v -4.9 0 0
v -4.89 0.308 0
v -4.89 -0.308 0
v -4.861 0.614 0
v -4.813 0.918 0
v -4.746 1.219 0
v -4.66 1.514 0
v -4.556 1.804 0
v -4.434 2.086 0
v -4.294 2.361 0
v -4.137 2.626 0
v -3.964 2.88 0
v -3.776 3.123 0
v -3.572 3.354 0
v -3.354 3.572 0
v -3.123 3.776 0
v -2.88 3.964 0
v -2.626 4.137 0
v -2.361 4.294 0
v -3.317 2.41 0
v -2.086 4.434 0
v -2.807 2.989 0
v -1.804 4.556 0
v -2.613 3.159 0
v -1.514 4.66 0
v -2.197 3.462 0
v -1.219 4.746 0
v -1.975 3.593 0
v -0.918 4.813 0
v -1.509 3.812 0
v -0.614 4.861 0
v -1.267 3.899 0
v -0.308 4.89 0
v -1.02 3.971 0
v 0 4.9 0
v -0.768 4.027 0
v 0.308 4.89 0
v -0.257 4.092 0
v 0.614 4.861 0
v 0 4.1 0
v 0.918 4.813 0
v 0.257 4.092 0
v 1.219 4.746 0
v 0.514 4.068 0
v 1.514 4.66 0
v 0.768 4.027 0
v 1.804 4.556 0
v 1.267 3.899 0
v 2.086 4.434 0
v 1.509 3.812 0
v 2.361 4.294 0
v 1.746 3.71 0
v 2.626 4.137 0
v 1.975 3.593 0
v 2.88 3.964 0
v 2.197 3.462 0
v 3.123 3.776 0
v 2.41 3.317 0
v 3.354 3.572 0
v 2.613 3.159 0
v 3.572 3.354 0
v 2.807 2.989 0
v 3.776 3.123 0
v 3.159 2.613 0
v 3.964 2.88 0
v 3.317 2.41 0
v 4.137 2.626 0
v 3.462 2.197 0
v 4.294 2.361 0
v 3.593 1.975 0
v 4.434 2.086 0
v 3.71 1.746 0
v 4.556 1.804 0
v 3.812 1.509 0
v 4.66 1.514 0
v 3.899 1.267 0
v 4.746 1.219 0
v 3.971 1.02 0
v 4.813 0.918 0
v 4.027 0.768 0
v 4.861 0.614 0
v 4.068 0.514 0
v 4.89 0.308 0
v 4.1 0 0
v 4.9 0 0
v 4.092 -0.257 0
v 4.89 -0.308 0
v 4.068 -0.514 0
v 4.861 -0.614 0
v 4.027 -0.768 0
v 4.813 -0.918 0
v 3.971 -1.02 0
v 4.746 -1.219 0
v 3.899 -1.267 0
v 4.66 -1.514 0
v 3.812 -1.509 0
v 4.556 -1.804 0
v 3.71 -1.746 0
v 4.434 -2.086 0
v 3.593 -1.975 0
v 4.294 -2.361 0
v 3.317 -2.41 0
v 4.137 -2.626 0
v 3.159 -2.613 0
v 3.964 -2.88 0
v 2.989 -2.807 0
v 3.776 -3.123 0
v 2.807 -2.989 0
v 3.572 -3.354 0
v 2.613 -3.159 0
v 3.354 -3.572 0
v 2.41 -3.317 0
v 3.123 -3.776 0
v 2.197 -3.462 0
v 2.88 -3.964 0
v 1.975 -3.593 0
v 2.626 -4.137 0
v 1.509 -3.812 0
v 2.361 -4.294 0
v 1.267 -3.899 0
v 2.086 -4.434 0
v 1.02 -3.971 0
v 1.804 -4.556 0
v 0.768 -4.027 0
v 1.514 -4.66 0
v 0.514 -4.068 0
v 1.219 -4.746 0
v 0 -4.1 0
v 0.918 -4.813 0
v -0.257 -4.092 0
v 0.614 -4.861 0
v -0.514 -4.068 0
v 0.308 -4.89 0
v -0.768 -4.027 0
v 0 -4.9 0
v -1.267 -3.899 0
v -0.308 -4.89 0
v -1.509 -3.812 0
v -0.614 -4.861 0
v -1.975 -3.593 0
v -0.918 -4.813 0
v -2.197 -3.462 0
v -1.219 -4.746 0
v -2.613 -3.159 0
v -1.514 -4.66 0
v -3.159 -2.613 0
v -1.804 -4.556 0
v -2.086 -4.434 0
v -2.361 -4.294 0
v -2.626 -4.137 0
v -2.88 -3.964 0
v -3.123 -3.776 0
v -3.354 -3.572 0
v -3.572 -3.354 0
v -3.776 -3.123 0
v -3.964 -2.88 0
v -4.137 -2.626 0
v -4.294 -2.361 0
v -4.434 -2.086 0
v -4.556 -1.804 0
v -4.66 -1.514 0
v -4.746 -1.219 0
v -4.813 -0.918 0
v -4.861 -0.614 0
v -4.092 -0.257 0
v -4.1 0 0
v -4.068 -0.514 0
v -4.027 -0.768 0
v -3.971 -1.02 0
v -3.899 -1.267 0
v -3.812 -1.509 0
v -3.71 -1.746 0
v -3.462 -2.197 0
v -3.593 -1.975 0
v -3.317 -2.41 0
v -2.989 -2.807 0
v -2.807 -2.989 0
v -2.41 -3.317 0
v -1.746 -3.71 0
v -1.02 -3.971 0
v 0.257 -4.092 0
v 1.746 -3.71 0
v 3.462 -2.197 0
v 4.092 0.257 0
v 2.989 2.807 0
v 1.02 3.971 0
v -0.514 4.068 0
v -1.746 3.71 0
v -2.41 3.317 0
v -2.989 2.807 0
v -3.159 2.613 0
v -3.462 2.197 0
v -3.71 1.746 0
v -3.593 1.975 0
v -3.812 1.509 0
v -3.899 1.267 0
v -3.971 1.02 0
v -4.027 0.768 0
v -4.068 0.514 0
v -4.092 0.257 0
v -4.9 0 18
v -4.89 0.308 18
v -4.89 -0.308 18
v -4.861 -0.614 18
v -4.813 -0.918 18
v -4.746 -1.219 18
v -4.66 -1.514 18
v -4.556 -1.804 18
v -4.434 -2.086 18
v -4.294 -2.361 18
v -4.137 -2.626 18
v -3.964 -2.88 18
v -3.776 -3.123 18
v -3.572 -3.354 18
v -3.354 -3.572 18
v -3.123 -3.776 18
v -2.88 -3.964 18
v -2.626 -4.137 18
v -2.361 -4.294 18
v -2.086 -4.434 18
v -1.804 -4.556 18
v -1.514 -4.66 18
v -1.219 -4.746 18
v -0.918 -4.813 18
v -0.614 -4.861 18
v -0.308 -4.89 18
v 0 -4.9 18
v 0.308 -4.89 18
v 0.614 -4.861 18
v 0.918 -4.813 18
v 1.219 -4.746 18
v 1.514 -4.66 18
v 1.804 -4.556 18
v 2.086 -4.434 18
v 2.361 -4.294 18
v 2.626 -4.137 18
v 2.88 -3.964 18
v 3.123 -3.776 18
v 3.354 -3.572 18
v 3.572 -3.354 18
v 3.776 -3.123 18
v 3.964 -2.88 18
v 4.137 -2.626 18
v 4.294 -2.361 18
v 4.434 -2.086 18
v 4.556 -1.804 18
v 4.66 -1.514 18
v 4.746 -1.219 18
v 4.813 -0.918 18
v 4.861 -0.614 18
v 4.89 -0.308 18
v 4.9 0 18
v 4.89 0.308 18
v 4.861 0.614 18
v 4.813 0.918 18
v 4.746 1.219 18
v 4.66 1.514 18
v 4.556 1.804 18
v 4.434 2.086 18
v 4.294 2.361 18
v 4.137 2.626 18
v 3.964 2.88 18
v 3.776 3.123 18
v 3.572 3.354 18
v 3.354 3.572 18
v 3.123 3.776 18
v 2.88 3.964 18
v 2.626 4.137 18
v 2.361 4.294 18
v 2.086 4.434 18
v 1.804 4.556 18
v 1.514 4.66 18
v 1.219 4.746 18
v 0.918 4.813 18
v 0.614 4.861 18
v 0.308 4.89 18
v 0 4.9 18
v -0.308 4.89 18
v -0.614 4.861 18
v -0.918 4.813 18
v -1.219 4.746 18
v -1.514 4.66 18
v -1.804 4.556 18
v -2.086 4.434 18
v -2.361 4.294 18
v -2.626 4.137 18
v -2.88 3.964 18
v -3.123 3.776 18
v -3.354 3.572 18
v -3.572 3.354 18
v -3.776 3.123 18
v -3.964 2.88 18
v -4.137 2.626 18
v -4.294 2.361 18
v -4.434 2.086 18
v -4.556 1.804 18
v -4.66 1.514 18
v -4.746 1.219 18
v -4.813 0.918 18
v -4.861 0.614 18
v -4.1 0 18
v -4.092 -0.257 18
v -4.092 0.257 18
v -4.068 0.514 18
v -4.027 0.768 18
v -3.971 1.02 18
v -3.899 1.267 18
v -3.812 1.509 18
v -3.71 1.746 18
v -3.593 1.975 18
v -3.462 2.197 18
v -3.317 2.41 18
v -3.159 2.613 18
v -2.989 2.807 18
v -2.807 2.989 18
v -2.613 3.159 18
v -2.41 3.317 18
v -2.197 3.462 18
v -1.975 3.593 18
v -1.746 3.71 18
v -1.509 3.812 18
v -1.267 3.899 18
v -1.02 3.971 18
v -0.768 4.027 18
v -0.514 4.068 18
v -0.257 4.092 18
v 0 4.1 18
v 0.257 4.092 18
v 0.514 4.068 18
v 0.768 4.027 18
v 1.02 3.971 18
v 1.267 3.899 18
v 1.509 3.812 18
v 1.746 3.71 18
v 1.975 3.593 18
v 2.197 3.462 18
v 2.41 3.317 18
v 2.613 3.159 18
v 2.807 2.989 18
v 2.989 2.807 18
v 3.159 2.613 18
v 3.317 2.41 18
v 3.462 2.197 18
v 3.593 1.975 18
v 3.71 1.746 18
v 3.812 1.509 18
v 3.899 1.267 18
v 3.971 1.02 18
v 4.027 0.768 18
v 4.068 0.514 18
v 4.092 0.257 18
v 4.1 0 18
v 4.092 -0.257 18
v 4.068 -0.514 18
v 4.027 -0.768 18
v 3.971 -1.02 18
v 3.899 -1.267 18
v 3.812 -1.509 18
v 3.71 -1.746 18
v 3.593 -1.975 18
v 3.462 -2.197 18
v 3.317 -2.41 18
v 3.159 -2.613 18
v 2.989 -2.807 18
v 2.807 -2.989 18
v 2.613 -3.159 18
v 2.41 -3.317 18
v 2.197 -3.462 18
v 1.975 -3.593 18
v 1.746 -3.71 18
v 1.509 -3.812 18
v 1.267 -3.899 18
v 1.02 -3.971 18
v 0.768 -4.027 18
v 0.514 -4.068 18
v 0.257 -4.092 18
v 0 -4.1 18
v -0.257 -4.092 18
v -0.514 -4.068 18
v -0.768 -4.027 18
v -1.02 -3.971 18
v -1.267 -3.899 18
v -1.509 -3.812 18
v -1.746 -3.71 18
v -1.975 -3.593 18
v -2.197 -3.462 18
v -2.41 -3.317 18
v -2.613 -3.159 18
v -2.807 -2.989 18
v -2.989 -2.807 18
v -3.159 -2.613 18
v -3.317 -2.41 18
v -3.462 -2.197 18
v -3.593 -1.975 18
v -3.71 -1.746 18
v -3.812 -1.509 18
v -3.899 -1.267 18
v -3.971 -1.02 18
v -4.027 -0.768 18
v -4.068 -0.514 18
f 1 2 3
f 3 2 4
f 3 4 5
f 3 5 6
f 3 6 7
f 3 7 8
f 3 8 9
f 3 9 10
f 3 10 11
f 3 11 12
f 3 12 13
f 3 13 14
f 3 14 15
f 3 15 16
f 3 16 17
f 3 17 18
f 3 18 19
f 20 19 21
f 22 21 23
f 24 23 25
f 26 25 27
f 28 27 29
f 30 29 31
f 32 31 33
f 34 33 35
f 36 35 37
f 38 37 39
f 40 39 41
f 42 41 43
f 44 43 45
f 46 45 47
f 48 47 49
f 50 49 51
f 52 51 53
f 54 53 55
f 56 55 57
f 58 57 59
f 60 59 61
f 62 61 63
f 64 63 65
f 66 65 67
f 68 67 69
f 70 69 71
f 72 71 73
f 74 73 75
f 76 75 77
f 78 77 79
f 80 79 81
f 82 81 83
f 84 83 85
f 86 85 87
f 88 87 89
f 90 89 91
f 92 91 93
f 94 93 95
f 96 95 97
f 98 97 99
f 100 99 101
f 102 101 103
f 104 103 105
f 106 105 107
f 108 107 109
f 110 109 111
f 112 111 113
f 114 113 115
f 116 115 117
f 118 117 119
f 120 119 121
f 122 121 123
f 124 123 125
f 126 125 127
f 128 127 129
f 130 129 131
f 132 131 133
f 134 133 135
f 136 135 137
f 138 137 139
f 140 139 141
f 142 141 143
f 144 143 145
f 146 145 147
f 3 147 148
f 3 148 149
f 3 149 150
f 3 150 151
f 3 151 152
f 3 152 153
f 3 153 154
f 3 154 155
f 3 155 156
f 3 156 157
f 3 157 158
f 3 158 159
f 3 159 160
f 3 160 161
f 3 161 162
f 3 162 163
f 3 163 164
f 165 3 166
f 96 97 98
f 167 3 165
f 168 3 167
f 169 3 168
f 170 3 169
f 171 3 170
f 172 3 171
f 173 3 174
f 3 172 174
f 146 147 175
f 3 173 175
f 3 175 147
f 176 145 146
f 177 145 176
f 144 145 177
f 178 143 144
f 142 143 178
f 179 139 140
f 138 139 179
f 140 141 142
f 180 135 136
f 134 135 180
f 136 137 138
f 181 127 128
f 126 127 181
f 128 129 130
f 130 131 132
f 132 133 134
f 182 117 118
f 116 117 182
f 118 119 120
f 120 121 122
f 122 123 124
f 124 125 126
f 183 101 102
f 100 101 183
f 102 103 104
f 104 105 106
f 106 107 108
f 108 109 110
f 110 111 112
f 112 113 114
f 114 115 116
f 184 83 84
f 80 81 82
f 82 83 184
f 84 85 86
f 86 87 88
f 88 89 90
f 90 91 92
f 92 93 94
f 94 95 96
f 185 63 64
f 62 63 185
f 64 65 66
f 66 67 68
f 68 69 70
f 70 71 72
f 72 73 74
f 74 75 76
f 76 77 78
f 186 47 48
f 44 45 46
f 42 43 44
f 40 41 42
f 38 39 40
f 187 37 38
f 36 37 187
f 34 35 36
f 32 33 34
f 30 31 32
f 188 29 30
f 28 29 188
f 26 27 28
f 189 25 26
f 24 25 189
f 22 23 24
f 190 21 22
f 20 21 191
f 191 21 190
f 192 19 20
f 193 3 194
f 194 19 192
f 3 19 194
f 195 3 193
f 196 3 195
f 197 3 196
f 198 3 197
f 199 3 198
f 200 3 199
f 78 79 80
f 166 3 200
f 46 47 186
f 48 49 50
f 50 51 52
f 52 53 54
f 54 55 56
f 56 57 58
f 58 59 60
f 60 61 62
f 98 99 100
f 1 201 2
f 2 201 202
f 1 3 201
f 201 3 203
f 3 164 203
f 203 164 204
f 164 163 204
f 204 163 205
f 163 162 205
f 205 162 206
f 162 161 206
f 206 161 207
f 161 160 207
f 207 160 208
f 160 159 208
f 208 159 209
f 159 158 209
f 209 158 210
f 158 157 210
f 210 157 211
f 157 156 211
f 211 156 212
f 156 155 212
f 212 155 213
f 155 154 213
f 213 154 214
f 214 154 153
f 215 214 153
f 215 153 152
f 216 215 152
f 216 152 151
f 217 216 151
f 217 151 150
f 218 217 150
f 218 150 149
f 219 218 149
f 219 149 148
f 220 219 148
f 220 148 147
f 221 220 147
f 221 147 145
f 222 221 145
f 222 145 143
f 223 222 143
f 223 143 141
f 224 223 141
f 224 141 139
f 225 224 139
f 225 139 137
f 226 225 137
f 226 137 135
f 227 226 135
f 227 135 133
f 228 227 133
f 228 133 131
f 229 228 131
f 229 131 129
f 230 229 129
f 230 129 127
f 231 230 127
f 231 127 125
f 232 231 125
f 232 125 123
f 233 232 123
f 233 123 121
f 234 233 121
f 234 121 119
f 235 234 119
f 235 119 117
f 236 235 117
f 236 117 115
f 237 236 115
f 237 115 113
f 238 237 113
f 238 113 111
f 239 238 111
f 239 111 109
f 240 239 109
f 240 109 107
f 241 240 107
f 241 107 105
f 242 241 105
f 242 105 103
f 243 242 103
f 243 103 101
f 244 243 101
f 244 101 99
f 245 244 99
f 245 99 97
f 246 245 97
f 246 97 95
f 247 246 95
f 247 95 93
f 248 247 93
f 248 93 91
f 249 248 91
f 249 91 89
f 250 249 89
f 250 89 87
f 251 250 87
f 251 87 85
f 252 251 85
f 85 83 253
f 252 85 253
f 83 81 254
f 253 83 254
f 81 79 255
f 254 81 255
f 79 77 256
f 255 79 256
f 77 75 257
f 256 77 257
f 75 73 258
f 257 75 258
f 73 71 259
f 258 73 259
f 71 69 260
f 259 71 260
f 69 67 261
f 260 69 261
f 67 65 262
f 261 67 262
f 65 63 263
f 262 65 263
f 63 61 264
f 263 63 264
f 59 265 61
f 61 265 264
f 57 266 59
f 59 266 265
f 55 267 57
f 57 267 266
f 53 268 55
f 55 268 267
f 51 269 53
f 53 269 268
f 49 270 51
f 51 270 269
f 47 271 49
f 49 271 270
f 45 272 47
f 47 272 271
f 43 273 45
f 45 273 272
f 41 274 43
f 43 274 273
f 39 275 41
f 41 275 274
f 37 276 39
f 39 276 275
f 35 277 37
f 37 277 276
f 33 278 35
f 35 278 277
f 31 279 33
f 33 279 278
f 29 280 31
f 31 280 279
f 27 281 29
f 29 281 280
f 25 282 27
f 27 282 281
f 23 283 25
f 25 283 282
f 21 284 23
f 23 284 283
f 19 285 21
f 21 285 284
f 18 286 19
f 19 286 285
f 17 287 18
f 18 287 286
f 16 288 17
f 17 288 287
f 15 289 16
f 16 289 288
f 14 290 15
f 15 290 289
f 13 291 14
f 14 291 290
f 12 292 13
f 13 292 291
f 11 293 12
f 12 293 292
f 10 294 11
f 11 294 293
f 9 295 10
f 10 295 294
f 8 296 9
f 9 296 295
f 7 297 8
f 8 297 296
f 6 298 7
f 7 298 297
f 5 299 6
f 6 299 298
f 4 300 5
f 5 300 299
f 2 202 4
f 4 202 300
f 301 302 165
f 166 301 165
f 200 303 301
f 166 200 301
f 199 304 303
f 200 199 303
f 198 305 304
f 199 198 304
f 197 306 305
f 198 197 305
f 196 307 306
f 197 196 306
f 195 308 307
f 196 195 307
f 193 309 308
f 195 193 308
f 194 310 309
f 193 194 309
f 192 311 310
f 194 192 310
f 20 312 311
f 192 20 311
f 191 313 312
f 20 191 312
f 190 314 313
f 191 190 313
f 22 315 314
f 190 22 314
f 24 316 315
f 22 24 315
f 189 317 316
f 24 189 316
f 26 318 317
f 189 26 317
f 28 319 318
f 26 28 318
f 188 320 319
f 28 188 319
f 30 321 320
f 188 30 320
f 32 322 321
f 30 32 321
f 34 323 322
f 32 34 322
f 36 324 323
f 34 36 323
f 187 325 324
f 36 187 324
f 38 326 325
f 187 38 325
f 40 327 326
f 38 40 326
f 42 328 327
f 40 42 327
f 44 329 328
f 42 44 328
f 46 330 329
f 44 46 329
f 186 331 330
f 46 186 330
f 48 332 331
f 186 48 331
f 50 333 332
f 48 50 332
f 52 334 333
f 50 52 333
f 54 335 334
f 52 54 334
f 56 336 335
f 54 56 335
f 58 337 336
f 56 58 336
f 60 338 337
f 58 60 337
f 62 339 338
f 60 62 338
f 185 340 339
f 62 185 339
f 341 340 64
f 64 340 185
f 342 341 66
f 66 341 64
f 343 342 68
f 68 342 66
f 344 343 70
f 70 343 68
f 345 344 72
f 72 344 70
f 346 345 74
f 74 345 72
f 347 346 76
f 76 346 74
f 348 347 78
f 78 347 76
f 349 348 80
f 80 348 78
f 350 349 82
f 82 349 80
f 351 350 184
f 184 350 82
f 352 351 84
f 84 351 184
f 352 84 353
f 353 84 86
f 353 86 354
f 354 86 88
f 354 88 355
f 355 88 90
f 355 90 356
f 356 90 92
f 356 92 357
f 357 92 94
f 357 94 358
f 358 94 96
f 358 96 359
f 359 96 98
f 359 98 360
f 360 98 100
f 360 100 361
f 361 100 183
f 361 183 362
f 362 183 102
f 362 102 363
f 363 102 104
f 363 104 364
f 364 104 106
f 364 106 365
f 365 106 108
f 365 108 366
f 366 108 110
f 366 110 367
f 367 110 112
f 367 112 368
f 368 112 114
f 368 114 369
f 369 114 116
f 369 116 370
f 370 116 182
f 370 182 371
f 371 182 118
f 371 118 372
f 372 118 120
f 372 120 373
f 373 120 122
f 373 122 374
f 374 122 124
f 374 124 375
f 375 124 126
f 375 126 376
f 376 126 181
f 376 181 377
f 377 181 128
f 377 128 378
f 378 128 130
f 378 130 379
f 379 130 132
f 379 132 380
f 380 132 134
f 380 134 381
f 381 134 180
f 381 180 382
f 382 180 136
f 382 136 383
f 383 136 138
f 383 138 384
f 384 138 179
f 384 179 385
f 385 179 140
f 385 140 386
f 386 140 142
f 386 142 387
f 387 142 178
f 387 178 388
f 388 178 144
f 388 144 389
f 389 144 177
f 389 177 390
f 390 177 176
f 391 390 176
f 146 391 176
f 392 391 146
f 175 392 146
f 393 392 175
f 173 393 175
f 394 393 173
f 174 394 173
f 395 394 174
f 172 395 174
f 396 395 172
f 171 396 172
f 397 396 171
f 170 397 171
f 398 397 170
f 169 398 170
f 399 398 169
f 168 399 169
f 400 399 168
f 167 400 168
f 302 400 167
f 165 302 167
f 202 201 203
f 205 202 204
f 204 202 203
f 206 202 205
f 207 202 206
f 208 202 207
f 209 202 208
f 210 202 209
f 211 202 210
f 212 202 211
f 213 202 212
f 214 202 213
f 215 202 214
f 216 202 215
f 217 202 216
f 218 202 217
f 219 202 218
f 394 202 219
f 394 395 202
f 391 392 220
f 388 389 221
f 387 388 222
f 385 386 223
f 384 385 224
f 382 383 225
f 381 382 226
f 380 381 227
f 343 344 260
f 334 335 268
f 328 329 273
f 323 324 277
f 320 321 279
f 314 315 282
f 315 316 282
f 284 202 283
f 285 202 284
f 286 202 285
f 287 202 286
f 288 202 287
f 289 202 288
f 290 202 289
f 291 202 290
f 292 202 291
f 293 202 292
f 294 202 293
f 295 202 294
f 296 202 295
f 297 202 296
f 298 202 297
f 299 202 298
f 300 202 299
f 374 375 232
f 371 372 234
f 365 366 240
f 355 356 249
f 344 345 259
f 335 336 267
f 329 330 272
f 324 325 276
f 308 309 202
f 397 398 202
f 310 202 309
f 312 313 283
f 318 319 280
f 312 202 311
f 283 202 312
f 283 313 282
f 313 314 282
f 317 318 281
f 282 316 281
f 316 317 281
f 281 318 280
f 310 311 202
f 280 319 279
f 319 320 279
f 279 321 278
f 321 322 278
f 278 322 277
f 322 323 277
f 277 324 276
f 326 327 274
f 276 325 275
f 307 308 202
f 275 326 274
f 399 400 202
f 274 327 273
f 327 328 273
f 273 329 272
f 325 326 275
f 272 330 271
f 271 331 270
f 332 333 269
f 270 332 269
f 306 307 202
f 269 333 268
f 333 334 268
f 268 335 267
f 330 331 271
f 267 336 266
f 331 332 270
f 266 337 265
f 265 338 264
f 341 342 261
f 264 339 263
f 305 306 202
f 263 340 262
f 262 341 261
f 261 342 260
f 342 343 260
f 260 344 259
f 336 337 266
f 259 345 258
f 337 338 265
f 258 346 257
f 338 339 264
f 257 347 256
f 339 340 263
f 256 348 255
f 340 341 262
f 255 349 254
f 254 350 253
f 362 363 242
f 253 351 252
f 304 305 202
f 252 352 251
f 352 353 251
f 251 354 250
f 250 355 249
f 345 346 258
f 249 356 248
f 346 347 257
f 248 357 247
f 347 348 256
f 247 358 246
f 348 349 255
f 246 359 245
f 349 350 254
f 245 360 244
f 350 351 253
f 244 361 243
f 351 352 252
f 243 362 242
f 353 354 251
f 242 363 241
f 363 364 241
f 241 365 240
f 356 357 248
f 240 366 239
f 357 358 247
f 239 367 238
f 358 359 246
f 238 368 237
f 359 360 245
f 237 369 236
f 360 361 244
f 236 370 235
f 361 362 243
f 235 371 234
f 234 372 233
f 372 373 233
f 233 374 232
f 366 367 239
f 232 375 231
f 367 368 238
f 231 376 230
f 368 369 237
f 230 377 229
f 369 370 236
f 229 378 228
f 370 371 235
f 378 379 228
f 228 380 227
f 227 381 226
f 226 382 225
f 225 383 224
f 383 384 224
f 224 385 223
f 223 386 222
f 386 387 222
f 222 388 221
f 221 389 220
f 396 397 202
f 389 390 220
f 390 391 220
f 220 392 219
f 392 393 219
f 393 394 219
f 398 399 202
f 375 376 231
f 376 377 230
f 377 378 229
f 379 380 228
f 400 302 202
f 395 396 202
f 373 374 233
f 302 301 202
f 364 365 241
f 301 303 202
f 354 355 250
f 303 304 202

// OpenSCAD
$fn=100;
difference(){
	cylinder(r1=4.9,r2=4.9,h=18);
	cylinder(r1=4.1,r2=4.1,h=18);
}
